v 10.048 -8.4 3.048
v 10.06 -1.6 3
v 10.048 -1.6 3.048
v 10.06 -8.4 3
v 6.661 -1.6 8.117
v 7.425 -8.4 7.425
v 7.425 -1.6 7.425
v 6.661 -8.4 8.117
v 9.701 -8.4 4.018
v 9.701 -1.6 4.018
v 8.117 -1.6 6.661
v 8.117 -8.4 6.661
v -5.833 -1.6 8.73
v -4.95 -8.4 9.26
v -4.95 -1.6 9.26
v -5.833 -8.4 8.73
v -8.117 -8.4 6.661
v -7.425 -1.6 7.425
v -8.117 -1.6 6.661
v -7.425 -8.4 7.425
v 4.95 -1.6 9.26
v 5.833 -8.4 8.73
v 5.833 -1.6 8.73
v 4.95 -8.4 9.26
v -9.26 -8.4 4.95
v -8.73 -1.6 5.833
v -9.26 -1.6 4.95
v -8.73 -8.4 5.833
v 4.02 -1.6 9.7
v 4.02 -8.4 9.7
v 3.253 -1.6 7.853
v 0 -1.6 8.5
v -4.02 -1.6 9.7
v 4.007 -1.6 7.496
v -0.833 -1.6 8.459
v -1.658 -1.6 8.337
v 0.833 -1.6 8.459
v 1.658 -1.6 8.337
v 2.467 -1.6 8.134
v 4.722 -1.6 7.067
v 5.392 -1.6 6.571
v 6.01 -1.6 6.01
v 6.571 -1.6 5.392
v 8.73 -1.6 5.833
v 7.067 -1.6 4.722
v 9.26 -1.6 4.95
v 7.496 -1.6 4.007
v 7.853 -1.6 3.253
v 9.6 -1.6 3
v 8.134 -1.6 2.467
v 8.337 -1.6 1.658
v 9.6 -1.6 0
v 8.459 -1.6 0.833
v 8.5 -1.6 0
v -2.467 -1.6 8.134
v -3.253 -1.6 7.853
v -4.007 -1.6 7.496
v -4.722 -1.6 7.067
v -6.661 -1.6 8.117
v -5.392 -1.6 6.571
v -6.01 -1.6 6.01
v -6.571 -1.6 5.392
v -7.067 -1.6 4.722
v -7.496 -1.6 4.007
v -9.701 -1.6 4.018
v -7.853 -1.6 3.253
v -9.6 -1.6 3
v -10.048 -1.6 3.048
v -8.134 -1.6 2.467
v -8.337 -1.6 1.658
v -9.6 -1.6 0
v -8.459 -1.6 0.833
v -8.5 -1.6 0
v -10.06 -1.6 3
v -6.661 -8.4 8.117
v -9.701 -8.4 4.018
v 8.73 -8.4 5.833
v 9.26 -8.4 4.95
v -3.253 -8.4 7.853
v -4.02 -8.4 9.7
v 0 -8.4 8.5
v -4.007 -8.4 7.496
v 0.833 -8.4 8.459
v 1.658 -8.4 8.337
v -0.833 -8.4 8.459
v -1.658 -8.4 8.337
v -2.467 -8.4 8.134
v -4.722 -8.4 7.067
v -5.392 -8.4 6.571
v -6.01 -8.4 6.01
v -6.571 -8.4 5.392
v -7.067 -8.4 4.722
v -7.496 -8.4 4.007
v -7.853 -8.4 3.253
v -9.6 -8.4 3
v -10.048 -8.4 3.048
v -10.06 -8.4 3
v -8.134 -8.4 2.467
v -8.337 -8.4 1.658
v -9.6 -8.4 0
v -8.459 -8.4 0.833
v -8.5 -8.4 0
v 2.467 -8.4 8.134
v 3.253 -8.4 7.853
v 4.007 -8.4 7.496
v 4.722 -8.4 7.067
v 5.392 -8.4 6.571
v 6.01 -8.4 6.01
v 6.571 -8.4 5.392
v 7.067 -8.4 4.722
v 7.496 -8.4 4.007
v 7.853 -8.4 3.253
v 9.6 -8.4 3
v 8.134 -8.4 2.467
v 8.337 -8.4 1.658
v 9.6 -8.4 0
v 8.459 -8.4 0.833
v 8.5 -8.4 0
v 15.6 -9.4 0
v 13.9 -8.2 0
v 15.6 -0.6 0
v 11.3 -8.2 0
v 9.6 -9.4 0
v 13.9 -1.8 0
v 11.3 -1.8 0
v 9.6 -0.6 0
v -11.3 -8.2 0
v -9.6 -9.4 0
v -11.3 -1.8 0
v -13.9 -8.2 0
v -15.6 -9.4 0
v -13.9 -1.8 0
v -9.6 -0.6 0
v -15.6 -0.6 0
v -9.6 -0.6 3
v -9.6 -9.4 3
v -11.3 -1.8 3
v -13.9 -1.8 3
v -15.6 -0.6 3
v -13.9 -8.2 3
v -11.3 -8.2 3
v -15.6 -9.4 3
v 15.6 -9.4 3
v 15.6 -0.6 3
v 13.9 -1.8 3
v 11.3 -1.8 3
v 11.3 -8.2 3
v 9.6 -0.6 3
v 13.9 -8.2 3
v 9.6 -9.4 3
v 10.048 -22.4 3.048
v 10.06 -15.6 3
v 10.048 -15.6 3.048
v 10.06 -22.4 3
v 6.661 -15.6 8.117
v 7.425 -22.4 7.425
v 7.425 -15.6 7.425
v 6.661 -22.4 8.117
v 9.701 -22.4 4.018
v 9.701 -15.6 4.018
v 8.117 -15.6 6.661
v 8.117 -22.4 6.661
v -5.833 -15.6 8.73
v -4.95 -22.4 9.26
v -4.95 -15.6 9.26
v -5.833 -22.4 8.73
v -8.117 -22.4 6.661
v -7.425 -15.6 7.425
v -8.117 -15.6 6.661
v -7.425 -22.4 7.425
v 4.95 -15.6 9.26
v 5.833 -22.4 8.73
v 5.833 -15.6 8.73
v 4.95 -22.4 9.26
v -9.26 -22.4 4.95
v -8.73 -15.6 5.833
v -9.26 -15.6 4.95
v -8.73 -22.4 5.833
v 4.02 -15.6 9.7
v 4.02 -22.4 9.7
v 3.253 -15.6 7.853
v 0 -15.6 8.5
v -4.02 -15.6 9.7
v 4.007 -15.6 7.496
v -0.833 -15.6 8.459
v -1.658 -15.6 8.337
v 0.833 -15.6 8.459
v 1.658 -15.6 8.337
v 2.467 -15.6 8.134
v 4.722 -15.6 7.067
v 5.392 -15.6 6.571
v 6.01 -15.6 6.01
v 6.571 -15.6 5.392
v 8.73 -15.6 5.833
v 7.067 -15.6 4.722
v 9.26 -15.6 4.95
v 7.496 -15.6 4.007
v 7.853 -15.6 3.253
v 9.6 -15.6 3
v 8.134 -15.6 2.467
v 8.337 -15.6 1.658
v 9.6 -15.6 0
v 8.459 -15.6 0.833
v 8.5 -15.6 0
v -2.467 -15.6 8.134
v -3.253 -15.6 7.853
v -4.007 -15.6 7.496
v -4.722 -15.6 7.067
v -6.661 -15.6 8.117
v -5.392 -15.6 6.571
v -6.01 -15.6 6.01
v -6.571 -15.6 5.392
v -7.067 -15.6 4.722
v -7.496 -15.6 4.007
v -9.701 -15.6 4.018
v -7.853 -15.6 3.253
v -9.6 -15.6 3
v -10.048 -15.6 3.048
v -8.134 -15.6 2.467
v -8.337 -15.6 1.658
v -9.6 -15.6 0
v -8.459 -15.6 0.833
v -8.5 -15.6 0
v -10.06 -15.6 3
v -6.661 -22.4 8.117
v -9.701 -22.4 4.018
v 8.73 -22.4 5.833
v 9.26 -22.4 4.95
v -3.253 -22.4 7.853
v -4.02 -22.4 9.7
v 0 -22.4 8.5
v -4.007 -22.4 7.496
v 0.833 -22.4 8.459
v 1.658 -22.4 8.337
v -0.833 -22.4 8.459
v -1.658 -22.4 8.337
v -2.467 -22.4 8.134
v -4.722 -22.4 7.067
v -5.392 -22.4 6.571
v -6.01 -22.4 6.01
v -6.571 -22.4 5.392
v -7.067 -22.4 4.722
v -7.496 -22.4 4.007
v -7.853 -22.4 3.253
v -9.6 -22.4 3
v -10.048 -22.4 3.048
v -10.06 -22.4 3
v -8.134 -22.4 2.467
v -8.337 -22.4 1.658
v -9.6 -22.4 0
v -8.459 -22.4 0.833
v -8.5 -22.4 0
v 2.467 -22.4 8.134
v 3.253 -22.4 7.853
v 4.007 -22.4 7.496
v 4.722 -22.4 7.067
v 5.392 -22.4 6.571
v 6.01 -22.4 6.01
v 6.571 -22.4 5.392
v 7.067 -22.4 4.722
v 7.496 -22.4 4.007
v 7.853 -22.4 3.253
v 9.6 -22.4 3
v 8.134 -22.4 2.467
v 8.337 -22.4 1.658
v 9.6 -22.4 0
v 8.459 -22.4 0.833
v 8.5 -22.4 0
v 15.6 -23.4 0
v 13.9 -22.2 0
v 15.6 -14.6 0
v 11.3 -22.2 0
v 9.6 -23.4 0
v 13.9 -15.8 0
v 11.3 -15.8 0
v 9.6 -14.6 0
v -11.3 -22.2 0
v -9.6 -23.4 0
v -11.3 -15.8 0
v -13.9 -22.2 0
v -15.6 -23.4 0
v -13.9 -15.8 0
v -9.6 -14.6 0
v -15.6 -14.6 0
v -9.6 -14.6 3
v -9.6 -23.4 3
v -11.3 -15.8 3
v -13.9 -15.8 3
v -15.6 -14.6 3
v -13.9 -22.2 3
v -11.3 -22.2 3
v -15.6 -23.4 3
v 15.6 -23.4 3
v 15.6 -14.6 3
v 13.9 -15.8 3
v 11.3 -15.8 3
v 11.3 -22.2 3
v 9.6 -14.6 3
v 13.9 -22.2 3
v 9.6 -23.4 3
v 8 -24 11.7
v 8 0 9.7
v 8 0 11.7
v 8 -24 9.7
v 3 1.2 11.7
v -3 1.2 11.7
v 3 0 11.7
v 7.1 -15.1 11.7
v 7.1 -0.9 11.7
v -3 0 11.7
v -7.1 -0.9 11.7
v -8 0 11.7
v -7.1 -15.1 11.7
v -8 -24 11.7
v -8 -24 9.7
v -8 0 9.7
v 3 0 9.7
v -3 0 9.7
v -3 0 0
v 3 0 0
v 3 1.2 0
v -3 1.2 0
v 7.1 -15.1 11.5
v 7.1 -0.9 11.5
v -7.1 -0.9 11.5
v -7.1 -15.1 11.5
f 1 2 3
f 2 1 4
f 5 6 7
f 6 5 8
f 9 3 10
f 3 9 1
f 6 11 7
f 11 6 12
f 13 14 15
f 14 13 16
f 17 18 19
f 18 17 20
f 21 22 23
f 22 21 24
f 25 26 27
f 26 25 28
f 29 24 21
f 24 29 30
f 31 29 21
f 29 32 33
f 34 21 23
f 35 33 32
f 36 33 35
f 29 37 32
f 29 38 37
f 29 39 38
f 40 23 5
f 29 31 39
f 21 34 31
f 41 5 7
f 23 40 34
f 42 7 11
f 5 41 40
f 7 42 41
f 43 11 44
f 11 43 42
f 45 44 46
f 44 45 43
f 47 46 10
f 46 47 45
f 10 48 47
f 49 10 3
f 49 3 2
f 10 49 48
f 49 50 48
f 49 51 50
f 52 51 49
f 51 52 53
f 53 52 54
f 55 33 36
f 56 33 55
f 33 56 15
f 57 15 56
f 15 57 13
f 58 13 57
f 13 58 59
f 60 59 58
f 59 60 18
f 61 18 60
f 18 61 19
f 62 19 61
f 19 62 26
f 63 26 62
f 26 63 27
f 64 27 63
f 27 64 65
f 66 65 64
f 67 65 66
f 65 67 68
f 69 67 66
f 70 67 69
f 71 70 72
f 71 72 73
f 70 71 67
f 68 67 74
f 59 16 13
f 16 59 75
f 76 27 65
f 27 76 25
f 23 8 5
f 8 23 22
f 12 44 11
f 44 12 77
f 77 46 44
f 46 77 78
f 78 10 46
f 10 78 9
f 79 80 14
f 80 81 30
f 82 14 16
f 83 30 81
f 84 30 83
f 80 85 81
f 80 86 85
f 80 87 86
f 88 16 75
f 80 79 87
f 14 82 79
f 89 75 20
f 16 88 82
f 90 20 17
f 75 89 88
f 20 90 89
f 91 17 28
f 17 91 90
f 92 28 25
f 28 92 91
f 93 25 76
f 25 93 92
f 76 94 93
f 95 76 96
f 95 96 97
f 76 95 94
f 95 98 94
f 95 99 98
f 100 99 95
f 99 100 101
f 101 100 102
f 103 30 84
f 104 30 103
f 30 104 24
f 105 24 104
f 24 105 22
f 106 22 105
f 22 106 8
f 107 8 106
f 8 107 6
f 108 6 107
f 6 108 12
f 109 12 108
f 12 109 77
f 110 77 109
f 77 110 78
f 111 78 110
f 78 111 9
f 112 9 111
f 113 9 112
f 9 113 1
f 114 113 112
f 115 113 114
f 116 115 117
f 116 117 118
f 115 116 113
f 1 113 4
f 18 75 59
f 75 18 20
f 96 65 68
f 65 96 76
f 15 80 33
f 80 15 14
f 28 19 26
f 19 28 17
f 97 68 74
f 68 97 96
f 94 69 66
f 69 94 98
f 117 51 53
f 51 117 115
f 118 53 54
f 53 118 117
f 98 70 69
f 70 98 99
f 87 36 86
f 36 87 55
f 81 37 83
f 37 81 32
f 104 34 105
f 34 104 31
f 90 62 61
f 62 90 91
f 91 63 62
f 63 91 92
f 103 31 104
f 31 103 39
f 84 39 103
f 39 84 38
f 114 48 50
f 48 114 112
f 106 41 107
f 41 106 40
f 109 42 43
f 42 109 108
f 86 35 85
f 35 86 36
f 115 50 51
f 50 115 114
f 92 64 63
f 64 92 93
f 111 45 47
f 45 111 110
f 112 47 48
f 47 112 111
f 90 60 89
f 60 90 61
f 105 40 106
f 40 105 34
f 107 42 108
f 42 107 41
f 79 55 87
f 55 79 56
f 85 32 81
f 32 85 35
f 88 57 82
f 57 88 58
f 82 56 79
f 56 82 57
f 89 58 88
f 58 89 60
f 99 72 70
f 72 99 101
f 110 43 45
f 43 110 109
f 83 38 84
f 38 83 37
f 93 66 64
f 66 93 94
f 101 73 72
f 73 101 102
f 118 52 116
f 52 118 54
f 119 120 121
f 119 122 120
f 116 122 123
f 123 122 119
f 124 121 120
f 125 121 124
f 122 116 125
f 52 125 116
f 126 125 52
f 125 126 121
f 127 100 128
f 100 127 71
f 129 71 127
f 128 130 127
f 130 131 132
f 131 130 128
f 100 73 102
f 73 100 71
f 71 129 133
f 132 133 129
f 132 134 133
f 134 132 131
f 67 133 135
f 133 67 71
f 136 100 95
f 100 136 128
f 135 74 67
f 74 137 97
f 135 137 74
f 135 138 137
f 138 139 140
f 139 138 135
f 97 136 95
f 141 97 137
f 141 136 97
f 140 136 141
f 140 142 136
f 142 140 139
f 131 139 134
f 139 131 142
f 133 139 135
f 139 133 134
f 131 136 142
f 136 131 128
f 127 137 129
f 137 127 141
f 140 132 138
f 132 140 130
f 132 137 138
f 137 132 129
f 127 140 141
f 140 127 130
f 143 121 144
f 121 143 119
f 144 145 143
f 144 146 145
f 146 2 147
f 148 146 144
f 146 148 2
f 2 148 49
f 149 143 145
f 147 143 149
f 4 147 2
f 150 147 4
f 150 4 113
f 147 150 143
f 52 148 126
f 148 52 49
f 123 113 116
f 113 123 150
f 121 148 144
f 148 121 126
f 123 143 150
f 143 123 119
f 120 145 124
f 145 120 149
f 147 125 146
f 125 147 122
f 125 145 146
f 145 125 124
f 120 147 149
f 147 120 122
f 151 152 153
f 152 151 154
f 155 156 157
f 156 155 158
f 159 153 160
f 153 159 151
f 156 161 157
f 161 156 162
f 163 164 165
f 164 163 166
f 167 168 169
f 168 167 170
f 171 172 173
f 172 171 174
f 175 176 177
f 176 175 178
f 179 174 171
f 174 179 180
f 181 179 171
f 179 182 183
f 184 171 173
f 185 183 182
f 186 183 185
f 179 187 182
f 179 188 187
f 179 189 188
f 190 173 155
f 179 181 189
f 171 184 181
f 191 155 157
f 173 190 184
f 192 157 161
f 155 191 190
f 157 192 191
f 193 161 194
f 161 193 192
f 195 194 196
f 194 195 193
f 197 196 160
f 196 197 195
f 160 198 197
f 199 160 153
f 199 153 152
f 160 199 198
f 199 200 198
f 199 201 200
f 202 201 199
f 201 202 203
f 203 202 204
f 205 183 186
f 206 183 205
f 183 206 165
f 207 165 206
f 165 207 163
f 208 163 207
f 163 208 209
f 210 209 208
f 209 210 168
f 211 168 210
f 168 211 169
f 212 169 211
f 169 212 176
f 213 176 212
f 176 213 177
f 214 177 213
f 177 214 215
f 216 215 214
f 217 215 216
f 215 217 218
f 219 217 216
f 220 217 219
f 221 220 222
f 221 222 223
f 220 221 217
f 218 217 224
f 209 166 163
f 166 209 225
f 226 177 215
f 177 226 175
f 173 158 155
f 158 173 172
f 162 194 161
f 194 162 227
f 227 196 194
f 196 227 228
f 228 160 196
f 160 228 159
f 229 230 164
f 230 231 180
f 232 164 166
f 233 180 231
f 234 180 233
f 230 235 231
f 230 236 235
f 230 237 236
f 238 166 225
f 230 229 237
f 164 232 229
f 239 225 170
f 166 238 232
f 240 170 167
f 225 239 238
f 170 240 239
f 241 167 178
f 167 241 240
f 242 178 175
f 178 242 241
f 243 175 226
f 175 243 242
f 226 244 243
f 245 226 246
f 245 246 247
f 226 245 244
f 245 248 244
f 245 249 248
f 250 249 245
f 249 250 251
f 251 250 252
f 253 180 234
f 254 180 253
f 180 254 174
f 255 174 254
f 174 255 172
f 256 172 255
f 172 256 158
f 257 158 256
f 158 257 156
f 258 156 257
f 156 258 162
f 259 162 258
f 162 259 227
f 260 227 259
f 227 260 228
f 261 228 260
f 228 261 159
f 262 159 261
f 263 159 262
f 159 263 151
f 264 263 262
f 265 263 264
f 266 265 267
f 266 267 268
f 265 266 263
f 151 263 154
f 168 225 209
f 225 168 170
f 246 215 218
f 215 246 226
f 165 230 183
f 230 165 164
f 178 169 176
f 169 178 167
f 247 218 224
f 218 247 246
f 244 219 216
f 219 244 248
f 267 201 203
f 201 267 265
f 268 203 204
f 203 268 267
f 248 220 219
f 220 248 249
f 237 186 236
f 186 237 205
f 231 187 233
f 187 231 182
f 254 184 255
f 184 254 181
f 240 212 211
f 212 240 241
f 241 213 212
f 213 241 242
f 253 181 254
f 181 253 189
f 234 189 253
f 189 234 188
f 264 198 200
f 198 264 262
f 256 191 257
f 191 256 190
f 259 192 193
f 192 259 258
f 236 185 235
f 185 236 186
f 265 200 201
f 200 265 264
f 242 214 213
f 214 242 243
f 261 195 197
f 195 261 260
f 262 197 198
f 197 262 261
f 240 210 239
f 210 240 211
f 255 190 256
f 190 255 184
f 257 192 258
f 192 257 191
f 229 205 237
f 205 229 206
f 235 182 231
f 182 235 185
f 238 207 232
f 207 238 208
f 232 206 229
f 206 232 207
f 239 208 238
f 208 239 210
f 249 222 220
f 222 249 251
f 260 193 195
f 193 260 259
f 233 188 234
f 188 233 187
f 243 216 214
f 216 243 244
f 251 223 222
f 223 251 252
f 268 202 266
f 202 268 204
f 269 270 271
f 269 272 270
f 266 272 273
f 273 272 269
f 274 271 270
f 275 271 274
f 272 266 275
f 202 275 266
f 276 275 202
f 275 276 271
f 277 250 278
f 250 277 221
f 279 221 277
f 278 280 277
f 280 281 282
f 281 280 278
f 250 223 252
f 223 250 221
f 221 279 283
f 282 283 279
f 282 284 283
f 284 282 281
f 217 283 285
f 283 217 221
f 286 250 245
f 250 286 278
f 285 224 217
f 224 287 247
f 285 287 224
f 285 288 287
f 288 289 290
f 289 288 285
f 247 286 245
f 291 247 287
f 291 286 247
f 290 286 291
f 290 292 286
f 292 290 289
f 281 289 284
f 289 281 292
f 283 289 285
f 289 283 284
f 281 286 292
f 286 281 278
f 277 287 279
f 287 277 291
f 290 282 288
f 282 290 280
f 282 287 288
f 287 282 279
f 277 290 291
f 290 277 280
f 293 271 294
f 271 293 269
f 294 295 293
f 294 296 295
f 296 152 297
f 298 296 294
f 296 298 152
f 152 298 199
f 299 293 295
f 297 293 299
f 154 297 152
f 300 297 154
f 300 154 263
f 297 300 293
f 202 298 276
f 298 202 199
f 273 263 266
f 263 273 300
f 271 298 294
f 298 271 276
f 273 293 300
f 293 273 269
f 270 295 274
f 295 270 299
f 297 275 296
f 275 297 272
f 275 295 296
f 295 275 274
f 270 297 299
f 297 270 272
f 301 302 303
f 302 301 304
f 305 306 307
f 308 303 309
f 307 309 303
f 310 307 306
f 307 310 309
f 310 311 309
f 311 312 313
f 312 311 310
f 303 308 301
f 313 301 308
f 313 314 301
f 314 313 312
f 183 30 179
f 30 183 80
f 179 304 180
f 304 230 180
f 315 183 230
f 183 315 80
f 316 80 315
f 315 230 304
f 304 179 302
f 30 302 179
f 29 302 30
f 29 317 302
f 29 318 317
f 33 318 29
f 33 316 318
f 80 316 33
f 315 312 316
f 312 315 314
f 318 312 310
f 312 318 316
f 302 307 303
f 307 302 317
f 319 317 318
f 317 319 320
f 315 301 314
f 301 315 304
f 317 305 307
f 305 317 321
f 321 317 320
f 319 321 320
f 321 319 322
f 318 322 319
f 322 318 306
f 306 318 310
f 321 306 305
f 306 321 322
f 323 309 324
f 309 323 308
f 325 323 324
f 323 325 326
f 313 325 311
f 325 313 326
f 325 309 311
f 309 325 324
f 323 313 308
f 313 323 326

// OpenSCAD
// ReachSense six-finger wrap v1. Units: mm. Experimental, physically unverified.
// R: +X lateral, +Y distal (towards fingertip), +Z dorsal.
// The marker deck's distal edge and the stop's inner contact face are both Y=0.
// The outer stop is Y=1.2; it is NOT the anatomical reference.
// The stop constrains Y only. Anatomical X/Z and placement repeatability are unverified.
$fn = 64;
part = "holder"; // "holder" or "strap"
marker_id = 32;
finger_diameter_mm = 17;
marker_edge_mm = 10;
quiet_zone_mm = 2;
frame_mm = 1;
wall_mm = 2;
stop_wall_mm = 1.2;
strap_width_mm = 6;
strap_length_mm = 90;

r = finger_diameter_mm/2;
tile = marker_edge_mm + 2*quiet_zone_mm;
deck_width = tile + 2*frame_mm;
length = tile + 2*frame_mm + 8;
deck_bottom = r + wall_mm - 0.8;
deck_top = deck_bottom + 2;
pocket_depth = 0.2;
marker_y = -(frame_mm + quiet_zone_mm + marker_edge_mm/2);
support_y = [-5, -length+5];

assert(finger_diameter_mm >= 12 && finger_diameter_mm <= 26, "Choose a 12–26 mm candidate opening");
assert(marker_edge_mm >= 8 && marker_edge_mm <= 16, "Choose an 8–16 mm black edge");
assert(quiet_zone_mm >= 2, "Keep the full white quiet zone");
assert(marker_id >= 0 && marker_id < 100, "DICT_4X4_100 ID required");

module support(y) {
    translate([0,y,0]) intersection() {
        difference() {
            rotate([90,0,0]) cylinder(r=r+wall_mm,h=6.8,center=true);
            rotate([90,0,0]) cylinder(r=r,h=8.8,center=true);
        }
        translate([-r-wall_mm-1,-4.4,0]) cube([2*(r+wall_mm+1),8.8,r+wall_mm+1]);
    }
    // Through-slots for 6 mm hook-and-loop strap or the optional TPU strip.
    for(sign=[-1,1]) translate([sign*(r+wall_mm+2.1),y,1.5]) difference() {
        cube([6,8.8,3],center=true);
        cube([2.6,6.4,5],center=true);
    }
}

module holder() {
    difference() {
        union() {
            for(y=support_y) support(y);
            translate([-deck_width/2,-length,deck_bottom]) cube([deck_width,length,2]);
            // Front stop contacts the fingertip at its INNER face Y=0.
            // Deck ends at Y=0 while this wall extends beyond it, preserving the reference.
            translate([-3,0,0]) cube([6,stop_wall_mm,deck_top]);
        }
        // Shallow square registration recess. Keep all 2 mm white margins visible.
        translate([-tile/2-0.1,marker_y-tile/2-0.1,deck_top-pocket_depth])
            cube([tile+0.2,tile+0.2,pocket_depth+1]);
        // Identity comes from the attached printed marker. Geometry is shared by size.
    }
}

module strap() {
    // TPU-only ladder strip. Its ends need a return loop/fastener or hook-and-loop tape.
    // This is not an articulated hard-plastic chain or a validated locking buckle.
    union() {
        translate([-strap_length_mm/2,-strap_width_mm/2,0])
            cube([strap_length_mm,strap_width_mm,0.8]);
        for(x=[-strap_length_mm/2+3:4:strap_length_mm/2-3])
            translate([x-0.7,-strap_width_mm/2,0.8]) cube([1.4,strap_width_mm,0.5]);
    }
}

if(part == "strap") strap(); else holder();
echo(reference_plane_y_mm=0, outer_stop_y_mm=stop_wall_mm);
echo(marker_center_R_mm=[0,marker_y,deck_top-pocket_depth+0.15]);
echo(marker_center_to_distal_deck_edge_mm=-marker_y);
